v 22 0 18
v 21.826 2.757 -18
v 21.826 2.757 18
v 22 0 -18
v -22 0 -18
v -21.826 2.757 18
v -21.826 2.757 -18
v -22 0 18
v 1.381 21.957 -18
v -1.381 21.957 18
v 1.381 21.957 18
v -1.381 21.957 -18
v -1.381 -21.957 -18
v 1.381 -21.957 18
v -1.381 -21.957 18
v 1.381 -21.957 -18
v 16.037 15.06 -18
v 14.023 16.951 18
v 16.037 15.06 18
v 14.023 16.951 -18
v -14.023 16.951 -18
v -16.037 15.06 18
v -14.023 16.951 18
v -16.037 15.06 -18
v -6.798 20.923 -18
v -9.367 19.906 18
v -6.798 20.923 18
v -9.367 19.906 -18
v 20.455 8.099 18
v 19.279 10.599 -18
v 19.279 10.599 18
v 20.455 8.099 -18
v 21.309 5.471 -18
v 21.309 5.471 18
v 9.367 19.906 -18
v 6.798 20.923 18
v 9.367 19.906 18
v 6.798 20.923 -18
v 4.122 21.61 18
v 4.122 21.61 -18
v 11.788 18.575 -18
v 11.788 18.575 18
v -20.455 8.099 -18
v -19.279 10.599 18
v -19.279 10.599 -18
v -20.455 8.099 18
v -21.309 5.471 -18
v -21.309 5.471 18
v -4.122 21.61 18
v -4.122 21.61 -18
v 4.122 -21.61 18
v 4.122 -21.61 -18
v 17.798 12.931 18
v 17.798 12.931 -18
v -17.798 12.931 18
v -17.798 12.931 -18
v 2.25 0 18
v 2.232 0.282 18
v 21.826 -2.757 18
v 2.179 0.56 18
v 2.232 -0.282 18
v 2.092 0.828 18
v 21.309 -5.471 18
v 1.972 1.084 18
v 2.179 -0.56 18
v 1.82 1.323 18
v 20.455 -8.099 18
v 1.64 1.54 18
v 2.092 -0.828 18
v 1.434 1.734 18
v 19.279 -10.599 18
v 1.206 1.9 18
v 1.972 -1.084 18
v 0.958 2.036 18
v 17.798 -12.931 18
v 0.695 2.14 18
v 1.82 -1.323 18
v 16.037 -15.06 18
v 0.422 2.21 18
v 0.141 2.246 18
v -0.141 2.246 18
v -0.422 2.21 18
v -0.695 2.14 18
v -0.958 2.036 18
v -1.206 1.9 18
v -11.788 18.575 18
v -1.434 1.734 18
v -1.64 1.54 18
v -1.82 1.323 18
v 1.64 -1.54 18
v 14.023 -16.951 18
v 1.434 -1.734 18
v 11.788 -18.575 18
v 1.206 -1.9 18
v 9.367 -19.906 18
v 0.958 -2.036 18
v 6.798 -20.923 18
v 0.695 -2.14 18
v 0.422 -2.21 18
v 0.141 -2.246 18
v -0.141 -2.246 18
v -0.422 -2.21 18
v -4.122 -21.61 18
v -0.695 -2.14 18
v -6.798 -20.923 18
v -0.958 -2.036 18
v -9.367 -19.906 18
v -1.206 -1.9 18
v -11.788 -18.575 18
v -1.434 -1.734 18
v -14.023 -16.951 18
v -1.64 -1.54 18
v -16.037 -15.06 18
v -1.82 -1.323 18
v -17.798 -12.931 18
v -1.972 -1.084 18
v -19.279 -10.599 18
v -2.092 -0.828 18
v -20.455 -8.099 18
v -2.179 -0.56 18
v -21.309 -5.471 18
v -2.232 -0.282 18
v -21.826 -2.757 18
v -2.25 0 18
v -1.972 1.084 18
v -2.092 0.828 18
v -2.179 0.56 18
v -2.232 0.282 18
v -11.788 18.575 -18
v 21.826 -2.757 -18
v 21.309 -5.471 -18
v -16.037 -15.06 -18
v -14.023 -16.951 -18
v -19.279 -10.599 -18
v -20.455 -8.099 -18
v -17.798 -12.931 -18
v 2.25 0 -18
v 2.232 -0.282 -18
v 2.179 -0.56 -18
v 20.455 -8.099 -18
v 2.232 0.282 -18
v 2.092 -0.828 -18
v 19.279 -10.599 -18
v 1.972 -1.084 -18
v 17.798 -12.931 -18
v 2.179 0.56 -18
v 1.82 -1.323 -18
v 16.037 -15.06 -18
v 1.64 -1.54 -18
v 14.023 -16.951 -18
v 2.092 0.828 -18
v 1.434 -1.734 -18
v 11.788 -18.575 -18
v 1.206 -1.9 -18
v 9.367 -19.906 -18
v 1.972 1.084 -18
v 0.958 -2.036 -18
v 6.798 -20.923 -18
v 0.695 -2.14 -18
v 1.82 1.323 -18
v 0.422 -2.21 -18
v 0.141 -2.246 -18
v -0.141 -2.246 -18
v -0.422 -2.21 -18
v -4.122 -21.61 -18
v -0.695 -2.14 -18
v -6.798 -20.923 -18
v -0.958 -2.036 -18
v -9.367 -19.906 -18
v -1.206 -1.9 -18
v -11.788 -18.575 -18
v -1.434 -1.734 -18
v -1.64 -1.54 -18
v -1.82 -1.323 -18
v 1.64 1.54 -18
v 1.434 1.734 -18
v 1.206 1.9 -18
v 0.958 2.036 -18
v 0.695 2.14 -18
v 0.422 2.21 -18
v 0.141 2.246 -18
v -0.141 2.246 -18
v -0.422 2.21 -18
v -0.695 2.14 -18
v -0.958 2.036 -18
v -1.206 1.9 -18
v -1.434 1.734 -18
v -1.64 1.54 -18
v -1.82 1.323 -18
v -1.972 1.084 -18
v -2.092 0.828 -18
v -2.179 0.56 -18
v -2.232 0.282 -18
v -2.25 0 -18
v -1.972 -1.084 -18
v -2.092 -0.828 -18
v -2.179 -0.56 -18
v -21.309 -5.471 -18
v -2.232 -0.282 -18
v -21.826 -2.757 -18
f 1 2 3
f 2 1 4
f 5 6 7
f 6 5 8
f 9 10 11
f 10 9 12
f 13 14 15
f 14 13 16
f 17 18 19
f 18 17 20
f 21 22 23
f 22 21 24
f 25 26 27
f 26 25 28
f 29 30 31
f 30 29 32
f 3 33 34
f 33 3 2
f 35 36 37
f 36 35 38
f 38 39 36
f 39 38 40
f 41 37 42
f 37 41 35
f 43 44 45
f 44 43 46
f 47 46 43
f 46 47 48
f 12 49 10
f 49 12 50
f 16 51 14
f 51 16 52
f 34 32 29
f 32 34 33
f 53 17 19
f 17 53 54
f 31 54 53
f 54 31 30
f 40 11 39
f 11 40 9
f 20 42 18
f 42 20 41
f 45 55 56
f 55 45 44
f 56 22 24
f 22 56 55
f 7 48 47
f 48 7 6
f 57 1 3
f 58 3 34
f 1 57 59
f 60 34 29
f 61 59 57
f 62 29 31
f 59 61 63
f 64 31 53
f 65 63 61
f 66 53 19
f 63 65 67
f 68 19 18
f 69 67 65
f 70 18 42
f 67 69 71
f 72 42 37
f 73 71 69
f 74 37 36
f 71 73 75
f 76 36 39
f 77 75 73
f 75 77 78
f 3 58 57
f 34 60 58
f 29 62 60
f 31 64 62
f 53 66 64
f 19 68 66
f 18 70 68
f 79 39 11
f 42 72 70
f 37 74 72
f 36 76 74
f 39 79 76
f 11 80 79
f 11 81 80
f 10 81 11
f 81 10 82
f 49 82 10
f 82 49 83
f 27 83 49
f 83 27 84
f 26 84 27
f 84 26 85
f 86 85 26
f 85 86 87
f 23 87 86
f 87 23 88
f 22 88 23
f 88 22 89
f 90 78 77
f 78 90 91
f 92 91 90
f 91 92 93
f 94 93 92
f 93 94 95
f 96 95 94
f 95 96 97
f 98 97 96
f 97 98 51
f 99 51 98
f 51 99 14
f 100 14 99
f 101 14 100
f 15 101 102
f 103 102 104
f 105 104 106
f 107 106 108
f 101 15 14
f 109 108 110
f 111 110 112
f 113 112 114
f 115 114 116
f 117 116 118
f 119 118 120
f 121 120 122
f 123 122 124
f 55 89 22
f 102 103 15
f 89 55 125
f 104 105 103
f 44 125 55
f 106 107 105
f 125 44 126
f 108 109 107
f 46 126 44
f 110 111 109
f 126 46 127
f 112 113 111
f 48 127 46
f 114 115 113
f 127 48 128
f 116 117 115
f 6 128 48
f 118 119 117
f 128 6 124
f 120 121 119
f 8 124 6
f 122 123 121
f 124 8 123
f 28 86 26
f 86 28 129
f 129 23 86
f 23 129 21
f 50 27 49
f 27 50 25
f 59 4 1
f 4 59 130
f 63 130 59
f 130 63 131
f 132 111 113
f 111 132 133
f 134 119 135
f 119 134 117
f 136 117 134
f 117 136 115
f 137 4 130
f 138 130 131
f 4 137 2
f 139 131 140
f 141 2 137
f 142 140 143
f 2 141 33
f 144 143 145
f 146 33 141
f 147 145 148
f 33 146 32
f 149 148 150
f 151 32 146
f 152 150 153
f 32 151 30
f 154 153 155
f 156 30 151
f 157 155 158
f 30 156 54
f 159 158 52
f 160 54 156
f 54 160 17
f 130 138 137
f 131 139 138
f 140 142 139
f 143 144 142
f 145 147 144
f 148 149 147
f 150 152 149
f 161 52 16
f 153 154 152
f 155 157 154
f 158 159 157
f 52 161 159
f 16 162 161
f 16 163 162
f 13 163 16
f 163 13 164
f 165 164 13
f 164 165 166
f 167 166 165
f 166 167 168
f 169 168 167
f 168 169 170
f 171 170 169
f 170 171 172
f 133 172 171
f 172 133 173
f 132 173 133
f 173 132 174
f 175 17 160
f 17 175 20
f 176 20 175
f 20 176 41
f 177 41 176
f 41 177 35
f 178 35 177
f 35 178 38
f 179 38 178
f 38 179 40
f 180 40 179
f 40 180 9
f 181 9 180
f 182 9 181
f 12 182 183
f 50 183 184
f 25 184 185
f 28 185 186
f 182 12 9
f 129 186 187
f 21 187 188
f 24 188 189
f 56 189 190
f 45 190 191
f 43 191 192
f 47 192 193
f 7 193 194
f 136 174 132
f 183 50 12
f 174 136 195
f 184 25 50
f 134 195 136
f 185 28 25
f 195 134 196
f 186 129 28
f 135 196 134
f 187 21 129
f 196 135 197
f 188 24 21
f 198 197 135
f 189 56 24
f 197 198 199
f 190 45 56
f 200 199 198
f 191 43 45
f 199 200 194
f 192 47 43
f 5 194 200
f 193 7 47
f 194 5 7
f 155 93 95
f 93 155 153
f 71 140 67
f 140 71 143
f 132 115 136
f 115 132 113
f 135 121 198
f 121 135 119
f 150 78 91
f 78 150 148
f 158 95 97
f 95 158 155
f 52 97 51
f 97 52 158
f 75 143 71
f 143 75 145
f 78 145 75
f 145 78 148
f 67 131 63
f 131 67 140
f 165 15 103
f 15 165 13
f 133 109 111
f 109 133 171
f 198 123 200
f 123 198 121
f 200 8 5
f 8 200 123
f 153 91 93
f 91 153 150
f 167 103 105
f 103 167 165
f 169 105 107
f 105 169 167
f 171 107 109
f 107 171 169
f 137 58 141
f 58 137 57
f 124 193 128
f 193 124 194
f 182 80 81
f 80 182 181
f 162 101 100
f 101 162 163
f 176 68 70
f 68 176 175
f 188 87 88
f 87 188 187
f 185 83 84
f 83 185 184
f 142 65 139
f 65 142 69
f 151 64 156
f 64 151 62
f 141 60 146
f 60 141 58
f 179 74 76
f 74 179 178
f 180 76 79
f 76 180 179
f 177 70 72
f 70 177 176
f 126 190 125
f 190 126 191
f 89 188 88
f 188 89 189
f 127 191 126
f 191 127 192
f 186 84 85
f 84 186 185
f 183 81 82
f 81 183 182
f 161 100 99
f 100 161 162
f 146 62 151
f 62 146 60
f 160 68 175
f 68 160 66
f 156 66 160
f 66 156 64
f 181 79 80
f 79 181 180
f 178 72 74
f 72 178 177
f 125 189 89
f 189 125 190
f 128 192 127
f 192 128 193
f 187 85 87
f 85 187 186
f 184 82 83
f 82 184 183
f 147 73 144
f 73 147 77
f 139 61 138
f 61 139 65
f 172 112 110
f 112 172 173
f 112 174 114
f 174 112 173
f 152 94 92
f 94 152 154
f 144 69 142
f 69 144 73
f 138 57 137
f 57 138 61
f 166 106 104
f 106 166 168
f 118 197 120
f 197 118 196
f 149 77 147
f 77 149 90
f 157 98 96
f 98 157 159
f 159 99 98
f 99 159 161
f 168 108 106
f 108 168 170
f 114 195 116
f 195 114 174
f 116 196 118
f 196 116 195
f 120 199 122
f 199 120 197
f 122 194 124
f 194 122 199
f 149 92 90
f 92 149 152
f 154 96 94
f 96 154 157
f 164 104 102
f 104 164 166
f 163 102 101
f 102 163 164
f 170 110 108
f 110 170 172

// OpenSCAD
$fn = 50;


difference() {
	union() {
		translate(v = [0, 0, -18.0000000000]) {
			cylinder(h = 36, r = 22.0000000000);
		}
	}
	union() {
		translate(v = [0, 0, -100.0000000000]) {
			cylinder(h = 200, r = 2.2500000000);
		}
	}
}
